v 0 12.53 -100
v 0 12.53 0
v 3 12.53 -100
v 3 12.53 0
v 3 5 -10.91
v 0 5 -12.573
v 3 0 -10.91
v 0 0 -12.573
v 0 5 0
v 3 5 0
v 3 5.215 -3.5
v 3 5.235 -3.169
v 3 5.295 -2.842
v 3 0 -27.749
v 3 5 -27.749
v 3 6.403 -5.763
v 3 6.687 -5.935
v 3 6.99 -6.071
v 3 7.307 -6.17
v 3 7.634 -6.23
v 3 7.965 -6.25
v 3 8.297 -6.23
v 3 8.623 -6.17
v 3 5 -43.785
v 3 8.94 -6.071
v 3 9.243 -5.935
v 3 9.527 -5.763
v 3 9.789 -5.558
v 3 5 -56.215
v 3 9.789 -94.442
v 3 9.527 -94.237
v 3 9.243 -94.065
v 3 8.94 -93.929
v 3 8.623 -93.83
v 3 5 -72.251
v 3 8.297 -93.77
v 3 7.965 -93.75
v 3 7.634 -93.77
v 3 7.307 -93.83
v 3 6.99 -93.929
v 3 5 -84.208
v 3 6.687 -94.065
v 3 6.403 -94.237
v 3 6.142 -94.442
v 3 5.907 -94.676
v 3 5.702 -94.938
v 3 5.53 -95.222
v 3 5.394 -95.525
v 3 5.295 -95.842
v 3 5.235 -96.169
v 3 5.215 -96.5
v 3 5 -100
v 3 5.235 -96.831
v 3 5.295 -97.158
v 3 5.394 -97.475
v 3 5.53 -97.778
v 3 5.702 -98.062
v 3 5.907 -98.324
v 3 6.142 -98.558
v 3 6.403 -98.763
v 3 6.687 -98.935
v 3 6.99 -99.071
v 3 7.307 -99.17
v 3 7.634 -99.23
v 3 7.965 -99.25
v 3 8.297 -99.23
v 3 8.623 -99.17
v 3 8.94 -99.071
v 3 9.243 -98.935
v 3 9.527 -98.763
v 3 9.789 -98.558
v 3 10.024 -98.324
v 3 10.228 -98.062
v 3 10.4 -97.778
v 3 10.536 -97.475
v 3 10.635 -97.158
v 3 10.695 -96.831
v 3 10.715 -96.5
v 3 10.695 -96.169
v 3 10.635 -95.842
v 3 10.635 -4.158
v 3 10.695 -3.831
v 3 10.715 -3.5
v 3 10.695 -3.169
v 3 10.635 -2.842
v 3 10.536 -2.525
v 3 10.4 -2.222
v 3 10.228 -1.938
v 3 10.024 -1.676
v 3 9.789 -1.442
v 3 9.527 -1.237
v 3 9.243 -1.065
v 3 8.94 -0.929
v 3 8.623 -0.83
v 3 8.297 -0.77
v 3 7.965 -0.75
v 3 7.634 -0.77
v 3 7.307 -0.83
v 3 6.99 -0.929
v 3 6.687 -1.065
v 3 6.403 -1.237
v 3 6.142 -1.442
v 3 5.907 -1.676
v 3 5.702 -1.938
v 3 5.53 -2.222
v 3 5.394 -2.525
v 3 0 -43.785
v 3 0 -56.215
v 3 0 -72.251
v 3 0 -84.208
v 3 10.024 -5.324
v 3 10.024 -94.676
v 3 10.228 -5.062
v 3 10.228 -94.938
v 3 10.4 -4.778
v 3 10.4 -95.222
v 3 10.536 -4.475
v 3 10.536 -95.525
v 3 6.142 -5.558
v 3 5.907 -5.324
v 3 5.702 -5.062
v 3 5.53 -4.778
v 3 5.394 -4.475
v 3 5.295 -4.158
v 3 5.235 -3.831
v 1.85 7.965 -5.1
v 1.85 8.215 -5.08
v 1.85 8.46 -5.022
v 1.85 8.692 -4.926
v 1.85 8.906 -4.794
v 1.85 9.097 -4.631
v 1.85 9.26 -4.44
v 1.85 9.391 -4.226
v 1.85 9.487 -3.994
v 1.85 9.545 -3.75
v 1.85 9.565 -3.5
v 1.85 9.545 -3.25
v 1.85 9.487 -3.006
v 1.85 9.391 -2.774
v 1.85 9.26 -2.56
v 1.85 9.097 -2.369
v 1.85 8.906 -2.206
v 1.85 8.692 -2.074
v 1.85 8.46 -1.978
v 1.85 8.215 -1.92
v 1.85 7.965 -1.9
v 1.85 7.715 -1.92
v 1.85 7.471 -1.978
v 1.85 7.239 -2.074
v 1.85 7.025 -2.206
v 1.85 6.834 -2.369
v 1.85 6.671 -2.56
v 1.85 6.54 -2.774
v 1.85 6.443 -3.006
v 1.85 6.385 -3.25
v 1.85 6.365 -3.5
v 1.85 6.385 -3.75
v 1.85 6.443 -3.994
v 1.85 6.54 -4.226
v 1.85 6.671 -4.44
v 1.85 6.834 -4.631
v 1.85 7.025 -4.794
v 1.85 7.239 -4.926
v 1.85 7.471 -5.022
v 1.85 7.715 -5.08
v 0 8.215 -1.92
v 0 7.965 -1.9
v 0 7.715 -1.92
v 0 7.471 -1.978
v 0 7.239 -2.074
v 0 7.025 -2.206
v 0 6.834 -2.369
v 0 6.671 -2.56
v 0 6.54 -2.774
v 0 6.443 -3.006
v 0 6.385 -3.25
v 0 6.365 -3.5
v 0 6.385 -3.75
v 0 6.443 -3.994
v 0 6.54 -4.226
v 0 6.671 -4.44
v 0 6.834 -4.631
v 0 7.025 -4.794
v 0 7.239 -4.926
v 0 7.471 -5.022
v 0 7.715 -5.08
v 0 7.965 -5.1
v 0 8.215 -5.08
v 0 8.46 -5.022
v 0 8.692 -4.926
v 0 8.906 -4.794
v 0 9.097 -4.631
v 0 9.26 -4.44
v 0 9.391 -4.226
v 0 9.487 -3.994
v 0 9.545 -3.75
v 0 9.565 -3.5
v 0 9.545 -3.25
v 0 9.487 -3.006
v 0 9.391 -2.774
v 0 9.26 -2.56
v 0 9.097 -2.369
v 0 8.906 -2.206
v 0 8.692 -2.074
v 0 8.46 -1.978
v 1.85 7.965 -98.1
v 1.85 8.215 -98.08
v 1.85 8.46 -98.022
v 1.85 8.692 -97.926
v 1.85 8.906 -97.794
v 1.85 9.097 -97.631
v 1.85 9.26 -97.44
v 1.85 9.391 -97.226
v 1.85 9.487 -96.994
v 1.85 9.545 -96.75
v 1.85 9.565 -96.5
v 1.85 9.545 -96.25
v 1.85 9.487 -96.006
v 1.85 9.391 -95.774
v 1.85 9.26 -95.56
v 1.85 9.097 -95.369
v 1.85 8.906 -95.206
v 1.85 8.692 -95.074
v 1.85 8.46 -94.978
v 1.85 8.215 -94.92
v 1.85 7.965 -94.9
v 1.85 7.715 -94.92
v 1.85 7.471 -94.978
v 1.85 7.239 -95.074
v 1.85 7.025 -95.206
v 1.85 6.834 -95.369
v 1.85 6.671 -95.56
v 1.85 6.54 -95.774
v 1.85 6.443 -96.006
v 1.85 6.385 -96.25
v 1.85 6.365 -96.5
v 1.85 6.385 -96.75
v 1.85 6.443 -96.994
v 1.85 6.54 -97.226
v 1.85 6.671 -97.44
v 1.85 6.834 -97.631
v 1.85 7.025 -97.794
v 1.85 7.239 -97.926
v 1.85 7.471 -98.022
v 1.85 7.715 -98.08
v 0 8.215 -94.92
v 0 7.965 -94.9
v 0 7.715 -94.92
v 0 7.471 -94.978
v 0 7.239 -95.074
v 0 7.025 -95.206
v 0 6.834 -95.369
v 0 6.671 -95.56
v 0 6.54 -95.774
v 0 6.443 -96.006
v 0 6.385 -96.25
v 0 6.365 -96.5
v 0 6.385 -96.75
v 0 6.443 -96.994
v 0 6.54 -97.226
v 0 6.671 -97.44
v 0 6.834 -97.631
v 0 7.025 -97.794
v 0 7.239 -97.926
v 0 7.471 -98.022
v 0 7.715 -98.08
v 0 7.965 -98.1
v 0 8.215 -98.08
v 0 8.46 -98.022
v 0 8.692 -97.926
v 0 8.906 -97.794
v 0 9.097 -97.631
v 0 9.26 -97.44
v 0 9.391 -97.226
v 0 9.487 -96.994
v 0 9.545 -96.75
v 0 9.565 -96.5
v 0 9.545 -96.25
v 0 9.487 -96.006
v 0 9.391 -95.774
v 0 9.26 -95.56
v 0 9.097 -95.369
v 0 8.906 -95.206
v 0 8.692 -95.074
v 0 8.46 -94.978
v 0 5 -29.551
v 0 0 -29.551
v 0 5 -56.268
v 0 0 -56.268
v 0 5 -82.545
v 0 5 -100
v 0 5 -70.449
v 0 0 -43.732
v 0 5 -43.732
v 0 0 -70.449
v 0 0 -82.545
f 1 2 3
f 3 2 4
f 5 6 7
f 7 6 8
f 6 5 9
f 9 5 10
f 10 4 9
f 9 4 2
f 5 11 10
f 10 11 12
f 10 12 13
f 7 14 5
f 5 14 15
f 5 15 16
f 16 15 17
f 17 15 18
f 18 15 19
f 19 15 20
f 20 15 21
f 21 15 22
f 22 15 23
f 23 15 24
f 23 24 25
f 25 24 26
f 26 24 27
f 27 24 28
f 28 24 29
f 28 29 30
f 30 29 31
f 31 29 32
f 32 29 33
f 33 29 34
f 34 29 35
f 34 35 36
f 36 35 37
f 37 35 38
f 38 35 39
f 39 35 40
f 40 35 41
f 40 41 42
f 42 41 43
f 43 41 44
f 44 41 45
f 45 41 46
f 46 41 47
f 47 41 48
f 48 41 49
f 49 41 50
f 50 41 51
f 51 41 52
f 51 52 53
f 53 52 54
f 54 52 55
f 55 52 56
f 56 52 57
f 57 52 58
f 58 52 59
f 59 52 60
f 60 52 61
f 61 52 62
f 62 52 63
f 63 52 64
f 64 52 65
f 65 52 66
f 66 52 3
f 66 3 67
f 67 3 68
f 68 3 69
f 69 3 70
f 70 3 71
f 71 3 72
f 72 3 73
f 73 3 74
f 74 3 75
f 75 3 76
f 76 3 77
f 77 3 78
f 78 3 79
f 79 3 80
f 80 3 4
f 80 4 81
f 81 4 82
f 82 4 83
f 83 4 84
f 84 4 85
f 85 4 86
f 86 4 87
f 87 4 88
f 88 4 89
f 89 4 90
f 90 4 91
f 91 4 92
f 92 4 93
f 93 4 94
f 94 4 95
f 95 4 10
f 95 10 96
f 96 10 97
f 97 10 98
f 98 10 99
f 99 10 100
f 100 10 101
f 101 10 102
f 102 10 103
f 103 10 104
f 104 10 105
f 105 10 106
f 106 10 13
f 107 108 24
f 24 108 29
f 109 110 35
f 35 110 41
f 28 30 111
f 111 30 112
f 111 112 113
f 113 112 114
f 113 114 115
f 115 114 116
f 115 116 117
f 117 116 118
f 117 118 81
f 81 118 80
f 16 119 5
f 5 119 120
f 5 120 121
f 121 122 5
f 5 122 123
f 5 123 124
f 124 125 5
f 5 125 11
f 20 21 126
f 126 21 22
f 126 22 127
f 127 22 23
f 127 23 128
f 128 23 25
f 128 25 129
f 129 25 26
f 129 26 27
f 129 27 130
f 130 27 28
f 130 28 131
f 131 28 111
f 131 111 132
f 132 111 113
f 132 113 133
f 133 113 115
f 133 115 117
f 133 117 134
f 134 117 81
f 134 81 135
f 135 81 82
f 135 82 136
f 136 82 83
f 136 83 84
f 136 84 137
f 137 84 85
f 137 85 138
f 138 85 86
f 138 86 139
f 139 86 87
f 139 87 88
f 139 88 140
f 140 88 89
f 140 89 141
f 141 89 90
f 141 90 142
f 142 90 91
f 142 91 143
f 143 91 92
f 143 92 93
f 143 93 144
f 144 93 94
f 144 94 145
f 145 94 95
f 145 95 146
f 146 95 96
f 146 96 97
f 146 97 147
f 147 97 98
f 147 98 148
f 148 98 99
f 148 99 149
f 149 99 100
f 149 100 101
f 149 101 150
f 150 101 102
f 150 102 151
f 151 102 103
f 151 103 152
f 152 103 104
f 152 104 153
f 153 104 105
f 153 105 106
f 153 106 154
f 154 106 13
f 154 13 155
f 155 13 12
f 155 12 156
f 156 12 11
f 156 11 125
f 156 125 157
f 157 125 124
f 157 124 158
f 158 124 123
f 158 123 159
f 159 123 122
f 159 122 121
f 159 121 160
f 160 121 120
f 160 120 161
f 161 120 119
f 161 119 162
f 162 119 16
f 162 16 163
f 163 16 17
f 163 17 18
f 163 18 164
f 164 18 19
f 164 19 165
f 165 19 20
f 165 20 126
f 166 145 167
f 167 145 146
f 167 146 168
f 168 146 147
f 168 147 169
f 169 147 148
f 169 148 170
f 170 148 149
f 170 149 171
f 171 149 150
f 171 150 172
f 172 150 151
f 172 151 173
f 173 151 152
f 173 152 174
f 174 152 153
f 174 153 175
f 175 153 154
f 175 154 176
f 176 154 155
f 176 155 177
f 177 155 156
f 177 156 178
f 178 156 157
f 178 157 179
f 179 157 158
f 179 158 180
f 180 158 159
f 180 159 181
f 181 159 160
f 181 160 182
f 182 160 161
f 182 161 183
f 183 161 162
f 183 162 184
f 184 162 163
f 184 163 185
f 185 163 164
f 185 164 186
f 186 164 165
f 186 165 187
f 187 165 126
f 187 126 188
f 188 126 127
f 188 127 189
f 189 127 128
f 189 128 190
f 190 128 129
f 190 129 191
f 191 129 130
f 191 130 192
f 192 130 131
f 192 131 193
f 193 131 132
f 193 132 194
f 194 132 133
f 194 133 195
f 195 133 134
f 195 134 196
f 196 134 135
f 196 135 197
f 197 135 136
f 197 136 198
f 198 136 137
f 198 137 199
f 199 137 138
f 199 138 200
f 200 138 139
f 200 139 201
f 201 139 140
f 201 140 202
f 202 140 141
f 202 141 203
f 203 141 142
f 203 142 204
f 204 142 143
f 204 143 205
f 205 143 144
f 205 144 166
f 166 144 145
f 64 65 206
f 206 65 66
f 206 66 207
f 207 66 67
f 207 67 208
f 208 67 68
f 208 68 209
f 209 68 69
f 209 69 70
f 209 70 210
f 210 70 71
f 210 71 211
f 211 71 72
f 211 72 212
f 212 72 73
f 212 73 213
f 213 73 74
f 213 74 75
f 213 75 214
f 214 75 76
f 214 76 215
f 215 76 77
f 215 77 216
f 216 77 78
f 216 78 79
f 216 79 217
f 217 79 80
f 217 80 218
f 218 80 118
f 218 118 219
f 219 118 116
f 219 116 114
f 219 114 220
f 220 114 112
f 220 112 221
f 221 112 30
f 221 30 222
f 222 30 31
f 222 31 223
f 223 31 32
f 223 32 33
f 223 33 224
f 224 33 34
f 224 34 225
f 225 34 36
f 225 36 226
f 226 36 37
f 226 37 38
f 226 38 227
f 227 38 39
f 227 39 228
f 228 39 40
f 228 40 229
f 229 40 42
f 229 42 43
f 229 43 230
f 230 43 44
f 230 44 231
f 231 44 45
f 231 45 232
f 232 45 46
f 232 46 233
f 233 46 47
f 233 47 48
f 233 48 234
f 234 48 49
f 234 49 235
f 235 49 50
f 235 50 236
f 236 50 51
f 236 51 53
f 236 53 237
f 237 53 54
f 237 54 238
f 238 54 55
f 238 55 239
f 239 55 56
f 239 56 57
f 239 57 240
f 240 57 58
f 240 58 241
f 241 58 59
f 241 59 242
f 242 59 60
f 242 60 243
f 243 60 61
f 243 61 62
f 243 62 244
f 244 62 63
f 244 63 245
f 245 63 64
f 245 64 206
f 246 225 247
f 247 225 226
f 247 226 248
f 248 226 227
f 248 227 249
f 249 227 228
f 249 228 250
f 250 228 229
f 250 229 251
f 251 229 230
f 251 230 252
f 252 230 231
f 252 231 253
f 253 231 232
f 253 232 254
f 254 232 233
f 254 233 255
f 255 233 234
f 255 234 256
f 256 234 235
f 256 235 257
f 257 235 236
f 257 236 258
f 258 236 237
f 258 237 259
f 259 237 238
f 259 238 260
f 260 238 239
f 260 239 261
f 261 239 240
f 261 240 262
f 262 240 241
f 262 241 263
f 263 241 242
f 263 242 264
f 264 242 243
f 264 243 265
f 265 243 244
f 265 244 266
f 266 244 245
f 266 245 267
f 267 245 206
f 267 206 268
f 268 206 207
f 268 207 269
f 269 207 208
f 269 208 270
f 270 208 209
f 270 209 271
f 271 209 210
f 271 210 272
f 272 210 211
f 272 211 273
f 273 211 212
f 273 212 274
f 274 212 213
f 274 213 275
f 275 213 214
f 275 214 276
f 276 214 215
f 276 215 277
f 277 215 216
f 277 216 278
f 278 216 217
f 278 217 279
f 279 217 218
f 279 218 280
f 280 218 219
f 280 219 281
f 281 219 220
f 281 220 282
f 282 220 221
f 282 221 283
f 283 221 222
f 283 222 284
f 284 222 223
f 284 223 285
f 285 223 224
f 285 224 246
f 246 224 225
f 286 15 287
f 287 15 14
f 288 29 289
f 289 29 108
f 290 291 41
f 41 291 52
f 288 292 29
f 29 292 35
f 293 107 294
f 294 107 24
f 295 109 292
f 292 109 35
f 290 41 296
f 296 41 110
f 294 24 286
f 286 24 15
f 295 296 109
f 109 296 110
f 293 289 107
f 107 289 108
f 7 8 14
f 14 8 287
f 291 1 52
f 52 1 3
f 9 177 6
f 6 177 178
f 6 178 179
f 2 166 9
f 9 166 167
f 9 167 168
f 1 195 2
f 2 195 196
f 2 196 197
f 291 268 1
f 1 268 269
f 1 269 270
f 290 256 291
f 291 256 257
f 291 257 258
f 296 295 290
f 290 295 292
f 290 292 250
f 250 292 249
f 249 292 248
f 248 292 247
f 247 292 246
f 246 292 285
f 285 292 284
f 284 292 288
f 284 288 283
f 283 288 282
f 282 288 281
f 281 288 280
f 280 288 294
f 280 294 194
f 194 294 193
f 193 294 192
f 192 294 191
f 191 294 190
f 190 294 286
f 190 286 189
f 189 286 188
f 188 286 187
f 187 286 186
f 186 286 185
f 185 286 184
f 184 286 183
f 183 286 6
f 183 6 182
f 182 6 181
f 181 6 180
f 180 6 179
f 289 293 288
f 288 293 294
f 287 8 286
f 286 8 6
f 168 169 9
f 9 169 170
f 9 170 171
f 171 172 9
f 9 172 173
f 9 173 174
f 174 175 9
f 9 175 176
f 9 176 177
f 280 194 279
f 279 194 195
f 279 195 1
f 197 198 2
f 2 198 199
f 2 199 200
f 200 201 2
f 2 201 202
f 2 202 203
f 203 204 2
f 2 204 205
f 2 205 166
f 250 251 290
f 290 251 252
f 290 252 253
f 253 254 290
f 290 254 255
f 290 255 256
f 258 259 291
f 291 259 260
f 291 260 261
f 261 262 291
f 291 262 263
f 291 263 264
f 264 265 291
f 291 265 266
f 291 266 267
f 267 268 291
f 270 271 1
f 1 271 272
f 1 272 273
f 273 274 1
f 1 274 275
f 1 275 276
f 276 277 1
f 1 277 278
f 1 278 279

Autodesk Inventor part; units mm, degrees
ref_plane "YZ Plane" through (0, 0, 0) normal (1, 0, 0) x (0, 1, 0)
ref_plane "XZ Plane" through (0, 0, 0) normal (0, 1, 0) x (-1, 0, 0)
sketch "Szkic1" plane through (0, 0, 0) normal (1, 0, 0) x (0, 1, 0)
  line L0 (0, 0) -> (10.93, 0)
  line L1 (10.93, 0) -> (10.93, -100)
  line L2 (10.93, -100) -> (0, -100)
  line L3 (0, -100) -> (0, 0)
  dimension "d0" = 10.93
  dimension "d1" = 100
extrude "Wyciągnięcie proste1" add sketch "Szkic1" along normal blind 3
sketch "Szkic2" plane through (0, 0, -100) normal (0, -1, 0) x (1, 0, 0)
  line L0 (-5, 84) -> (-8.1113, 87.1113) projected
  line L1 (-5, 84) -> (-4.2222, 84.7778) projected
  line L2 (-8.1113, 87.1113) -> (-7.3335, 87.8891) projected
  line L3 (-2, 60) -> (-3.1388, 64.2501) projected
  line L4 (-2, 60) -> (-0.9375, 60.2847) projected
  line L5 (-3.1388, 64.2501) -> (-2.0763, 64.5348) projected
  line L6 (-3.1388, 35.7499) -> (-2, 40) projected
  line L7 (-3.1388, 35.7499) -> (-2.0763, 35.4652) projected
  line L8 (-2, 40) -> (-0.9375, 39.7153) projected
  line L9 (-8.1113, 12.8887) -> (-5, 16) projected
  line L10 (-8.1113, 12.8887) -> (-7.3335, 12.1109) projected
  line L11 (-5, 16) -> (-4.2222, 15.2222) projected
  line L12 (-30.0489, 4.1) -> (-25.6489, 4.1) projected
  line L13 (-30.0489, 4.1) -> (-30.0489, 3) projected
  line L14 (-25.6489, 4.1) -> (-25.6489, 3) projected
  line L15 (-1.7913, 81.5519) -> (-5, 78.3431)
  line L16 (-5, 78.3431) -> (-13.7681, 87.1113)
  line L17 (-13.7681, 87.1113) -> (-10.5594, 90.32)
  line L18 (-10.5594, 90.32) -> (185.0217, 443.1577)
  arc A0 (351.0464, 277.133) -> (185.0217, 443.1577) centre (-11.203, 80.9083) ccw
  line L19 (351.0464, 277.133) -> (-1.7913, 81.5519)
  arc A1 (402.9118, 49.2349) -> (342.1425, 276.0288) centre (-8.9178, 60.424) ccw
  line L20 (402.9118, 49.2349) -> (-0.4452, 56.2755)
  line L21 (-0.4452, 56.2755) -> (-4.8284, 55.101)
  line L22 (-4.8284, 55.101) -> (-8.0378, 67.0785)
  line L23 (-8.0378, 67.0785) -> (-3.6546, 68.253)
  line L24 (-3.6546, 68.253) -> (342.1425, 276.0288)
  arc A2 (342.1425, -176.0288) -> (402.9118, 50.7651) centre (-8.9178, 39.576) ccw
  line L25 (342.1425, -176.0288) -> (-3.6546, 31.747)
  line L26 (-3.6546, 31.747) -> (-8.0378, 32.9215)
  line L27 (-8.0378, 32.9215) -> (-4.8284, 44.899)
  line L28 (-4.8284, 44.899) -> (-0.4452, 43.7245)
  line L29 (-0.4452, 43.7245) -> (402.9118, 50.7651)
  arc A3 (185.0217, -343.1577) -> (351.0464, -177.133) centre (-11.203, 19.0917) ccw
  line L30 (185.0217, -343.1577) -> (-10.5594, 9.68)
  line L31 (-10.5594, 9.68) -> (-13.7681, 12.8887)
  line L32 (-13.7681, 12.8887) -> (-5, 21.6569)
  line L33 (-5, 21.6569) -> (-1.7913, 18.4481)
  line L34 (-1.7913, 18.4481) -> (351.0464, -177.133)
  line L35 (-25.6489, 3) -> (-30.0489, 3) projected
  line L36 (-0.9375, 39.7153) -> (-2.0763, 35.4652) projected
  line L37 (-7.3335, 87.8891) -> (-4.2222, 84.7778) projected
  line L38 (-4.2222, 15.2222) -> (-7.3335, 12.1109) projected
  line L39 (-2.0763, 64.5348) -> (-0.9375, 60.2847) projected
  point P0 (0, 100)
  point P1 (259.8393, 226.5761)
  point P2 (359.0779, 50)
  point P3 (259.8393, -126.5761)
  point P4 (343.886, -173.1639)
  point P5 (402.9318, 50)
  point P6 (343.886, 273.1639)
extrude "Wyciągnięcie proste2" cut sketch "Szkic2" against normal blind 5 contours L0 L2 L37 L1 | L3 L5 L39 L4 | L6 L8 L36 L7 | L9 L11 L38 L10 | L15 L16 L17 L18 A0 L19 A1 L24 | L24 A1 L19 | L19 A1 A2 L29 L20 L21 L22 L23 L24 | A2 L34 L25 L26 L27 L28 L29 L20 A1 | A1 L20 L29 A2 | L34 A3 L30 L31 L32 L33 L25 A2 | A2 L25 L34
sketch "Szkic3" plane through (3, 0, 0) normal (1, 0, 0) x (0, 0, -1)
  circle A0 centre (3.5, 7.9652) radius 2 projected
  circle A1 centre (96.5, 7.9652) radius 2 projected
  point P0 (0, 0)
hole "Otwór1" at (3, 7.9652, -3.5) at (3, 7.9652, -96.5) direction (-1, 0, 0) diameter 3.2 depth 5 tip angle 118 countersink diameter 5.5 countersink angle 90
sketch "Szkic4" plane through (0, 5, -100) normal (0, -1, 0) x (1, 0, 0)
  line L0 (3, 100) -> (3, 84.2077) projected
  line L1 (0, 100) -> (3, 100) projected
  line L2 (0, 82.5448) -> (0, 100) projected
  line L3 (3, 84.2077) -> (0, 82.5448) projected
extrude "Wyciągnięcie proste3" add sketch "Szkic4" along normal up to surface (5 mm away)
sketch "Szkic5" plane through (0, 0, 0) normal (0, -1, 0) x (1, 0, 0)
  line L0 (4.8201, -9.9008) -> (54.794, 17.8002) projected
  line L1 (4.8201, -9.9008) -> (-21.7144, -24.6091)
  line L2 (-21.7144, -24.6091) -> (-5.6558, 14.396)
  line L3 (-5.6558, 14.396) -> (27.8601, 2.8705)
  line L4 (3, 0) -> (3, -27.7486) projected
  line L5 (0, 0) -> (0, -29.5511) projected
  line L6 (3, 0) -> (0, 0) projected
  point P0 (0, -12.5726)
  point P1 (3, -10.9097)
extrude "Wyciągnięcie proste4" cut sketch "Szkic5" against normal up to surface (5 mm away) contours L1 L5 L6 L4
sketch "Szkic6" plane through (0, 10.93, 0) normal (0, 1, 0) x (1, 0, 0)
  line L0 (0, 100) -> (0, 0) projected
  line L1 (0, 0) -> (3, 0) projected
  line L2 (3, 100) -> (3, 0) projected
  line L3 (0, 100) -> (3, 100) projected
  point P0 (0, 0)
ref_plane "Płaszczyzna konstrukcyjna1" through (-44.8489, 12.5303, -7) normal (0, 1, 0) x (0, 0, 1)
extrude "Wyciągnięcie proste5" add sketch "Szkic6" along normal up to surface (1.6003 mm away)
properties part number "przod" material "Stal, odlew"
